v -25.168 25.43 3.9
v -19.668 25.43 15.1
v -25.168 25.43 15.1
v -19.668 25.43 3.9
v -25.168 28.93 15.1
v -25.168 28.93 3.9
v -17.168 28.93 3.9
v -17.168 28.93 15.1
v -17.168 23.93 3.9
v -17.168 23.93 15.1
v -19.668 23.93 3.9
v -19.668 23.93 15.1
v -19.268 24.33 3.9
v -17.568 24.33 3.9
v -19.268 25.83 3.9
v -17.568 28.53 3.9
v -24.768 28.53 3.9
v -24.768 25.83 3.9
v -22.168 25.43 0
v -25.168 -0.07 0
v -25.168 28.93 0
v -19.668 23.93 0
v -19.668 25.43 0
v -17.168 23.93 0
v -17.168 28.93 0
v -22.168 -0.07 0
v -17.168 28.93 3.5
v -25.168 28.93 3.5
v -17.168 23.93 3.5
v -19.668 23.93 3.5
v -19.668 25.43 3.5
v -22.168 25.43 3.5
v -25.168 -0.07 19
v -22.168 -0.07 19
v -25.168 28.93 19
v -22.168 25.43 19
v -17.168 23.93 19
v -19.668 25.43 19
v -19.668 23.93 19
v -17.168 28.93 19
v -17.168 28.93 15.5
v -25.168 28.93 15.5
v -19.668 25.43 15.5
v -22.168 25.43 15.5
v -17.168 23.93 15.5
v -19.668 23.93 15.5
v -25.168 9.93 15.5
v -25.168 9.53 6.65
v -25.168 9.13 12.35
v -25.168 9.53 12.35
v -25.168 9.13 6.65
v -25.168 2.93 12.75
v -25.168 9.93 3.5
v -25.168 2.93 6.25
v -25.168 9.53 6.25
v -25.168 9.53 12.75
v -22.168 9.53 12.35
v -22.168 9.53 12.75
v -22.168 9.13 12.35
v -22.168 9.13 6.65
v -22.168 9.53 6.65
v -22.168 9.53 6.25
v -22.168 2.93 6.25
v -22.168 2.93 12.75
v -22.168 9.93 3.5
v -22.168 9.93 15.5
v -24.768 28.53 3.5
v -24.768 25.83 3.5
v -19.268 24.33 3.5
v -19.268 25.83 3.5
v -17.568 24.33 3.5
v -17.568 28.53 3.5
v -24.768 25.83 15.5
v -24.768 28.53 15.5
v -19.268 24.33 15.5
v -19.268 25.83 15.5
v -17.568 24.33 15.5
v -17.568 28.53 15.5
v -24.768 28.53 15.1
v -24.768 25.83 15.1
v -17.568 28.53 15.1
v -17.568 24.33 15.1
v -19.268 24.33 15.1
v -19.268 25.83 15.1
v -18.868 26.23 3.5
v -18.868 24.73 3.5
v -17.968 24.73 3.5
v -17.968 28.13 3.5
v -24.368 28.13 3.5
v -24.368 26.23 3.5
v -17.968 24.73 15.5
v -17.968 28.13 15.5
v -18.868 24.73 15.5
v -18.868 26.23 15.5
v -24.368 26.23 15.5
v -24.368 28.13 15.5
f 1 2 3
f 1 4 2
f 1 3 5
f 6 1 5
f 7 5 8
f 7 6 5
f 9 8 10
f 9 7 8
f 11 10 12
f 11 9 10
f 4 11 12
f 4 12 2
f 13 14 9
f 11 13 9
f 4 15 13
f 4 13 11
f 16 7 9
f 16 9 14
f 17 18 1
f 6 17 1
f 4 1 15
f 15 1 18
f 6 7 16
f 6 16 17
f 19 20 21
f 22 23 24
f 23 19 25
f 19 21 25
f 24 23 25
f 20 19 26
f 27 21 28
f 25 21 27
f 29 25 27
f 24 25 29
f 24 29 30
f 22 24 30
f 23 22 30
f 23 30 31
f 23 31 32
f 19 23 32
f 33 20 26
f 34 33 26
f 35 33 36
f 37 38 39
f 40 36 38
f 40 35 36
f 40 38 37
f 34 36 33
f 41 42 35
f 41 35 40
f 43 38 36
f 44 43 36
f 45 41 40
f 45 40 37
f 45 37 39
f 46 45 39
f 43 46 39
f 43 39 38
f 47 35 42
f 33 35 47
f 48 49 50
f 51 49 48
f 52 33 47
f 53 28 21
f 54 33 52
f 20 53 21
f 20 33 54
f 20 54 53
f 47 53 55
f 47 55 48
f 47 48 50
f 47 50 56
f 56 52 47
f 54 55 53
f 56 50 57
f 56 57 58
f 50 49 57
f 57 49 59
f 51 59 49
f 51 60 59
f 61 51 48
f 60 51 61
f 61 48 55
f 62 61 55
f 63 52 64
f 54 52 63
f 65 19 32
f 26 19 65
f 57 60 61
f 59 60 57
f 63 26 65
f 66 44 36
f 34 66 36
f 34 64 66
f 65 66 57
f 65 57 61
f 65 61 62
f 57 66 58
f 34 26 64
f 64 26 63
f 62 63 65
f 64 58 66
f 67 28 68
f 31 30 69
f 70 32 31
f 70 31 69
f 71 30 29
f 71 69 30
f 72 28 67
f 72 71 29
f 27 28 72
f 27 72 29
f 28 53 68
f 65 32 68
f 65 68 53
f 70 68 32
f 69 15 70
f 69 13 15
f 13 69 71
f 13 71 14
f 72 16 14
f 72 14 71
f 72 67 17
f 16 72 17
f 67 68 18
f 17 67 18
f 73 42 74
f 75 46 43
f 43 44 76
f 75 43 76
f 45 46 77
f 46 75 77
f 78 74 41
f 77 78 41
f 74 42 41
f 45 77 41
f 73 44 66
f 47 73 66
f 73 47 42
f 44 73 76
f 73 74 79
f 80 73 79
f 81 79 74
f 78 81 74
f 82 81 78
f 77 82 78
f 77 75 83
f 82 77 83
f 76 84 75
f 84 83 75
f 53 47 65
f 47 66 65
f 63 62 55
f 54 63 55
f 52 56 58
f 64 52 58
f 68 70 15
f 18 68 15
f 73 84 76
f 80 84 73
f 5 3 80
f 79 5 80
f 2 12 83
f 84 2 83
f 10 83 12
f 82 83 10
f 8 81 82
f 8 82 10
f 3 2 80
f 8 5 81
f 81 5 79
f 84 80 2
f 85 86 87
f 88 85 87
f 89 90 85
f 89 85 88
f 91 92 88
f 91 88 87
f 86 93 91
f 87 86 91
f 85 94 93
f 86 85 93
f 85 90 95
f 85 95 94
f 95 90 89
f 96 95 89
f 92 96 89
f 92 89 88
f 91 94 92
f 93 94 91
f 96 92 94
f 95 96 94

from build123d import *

# Parameters (mm, degrees)
PAD_DEPTH       = 19
POCKET_DEPTH    = 8.001
PAD001_DEPTH    = 12
SKETCH003_W     = 3.5
SKETCH003_H     = 0.4
POCKET001_DEPTH = 0.4
SKETCH004_W     = 5
SKETCH004_H     = 0.4
POCKET002_DEPTH = 0.4
SKETCH005_W     = 1.9
SKETCH005_H     = 0.4
POCKET003_DEPTH = 0.4
SKETCH006_W     = 5.1
SKETCH006_H     = 0.4
POCKET004_DEPTH = 0.4
SKETCH007_W     = 1.7
SKETCH007_H     = 0.4
POCKET005_DEPTH = 0.4
SKETCH008_W     = 7.2
SKETCH008_H     = 0.4
POCKET006_DEPTH = 0.4
SKETCH009_W     = 3
SKETCH009_H     = 0.8
PAD002_DEPTH    = 7
SKETCH010_W     = 3
SKETCH010_H     = 0.4
POCKET007_DEPTH = 0.4


with BuildPart() as part:
    # Sketch → Pad (new body)
    with BuildSketch(Plane.XY):
        Polygon((-25.168114, 28.93024), (-17.168114, 28.93024), (-17.168114, 23.93024), (-19.668114, 23.93024), (-19.668114, 25.43024), (-22.168114, 25.43024), (-22.168114, -0.06976), (-25.168114, -0.06976), align=None)
    extrude(amount=PAD_DEPTH)

    # Sketch001 → Pocket (cut, through all)
    with BuildSketch(Plane(origin=(-25.168114, 0, 0), x_dir=(0, -1, 0), z_dir=(-1, 0, 0))):
        Polygon((-28.93024, 15.5), (-9.93024, 15.5), (-9.93024, 12.75), (-2.93024, 12.75), (-2.93024, 6.25), (-9.93024, 6.25), (-9.93024, 3.5), (-28.93024, 3.5), align=None)
    extrude(amount=-POCKET_DEPTH, mode=Mode.SUBTRACT)

    # Sketch002 → Pad001 (new body)
    with BuildSketch(Plane.XY.offset(3.5)):
        Polygon((-25.168114, 28.93024), (-17.168114, 28.93024), (-17.168114, 23.93024), (-19.668114, 23.93024), (-19.668114, 25.43024), (-25.168114, 25.43024), align=None)
        Polygon((-24.368114, 26.23024), (-24.368114, 28.13024), (-17.968114, 28.13024), (-17.968114, 24.73024), (-18.868114, 24.73024), (-18.868114, 26.23024), align=None, mode=Mode.SUBTRACT)
    extrude(amount=PAD001_DEPTH)

    # Sketch003 → Pocket001 (cut)
    with BuildSketch(Plane(origin=(-25.168114, 0, 0), x_dir=(0, -1, 0), z_dir=(-1, 0, 0))):
        with Locations((-27.18024, 15.3)):
            Rectangle(SKETCH003_W, SKETCH003_H)
        with Locations((-27.18024, 3.7)):
            Rectangle(SKETCH003_W, SKETCH003_H)
    extrude(amount=-POCKET001_DEPTH, mode=Mode.SUBTRACT)

    # Sketch004 → Pocket002 (cut)
    with BuildSketch(Plane.YZ.offset(-17.168114)):
        with Locations((26.43024, 15.3)):
            Rectangle(SKETCH004_W, SKETCH004_H)
        with Locations((26.43024, 3.7)):
            Rectangle(SKETCH004_W, SKETCH004_H)
    extrude(amount=-POCKET002_DEPTH, mode=Mode.SUBTRACT)

    # Sketch005 → Pocket003 (cut)
    with BuildSketch(Plane(origin=(-19.668114, 0, 0), x_dir=(0, -1, 0), z_dir=(-1, 0, 0))):
        with Locations((-24.88024, 15.3)):
            Rectangle(SKETCH005_W, SKETCH005_H)
        with Locations((-24.88024, 3.7)):
            Rectangle(SKETCH005_W, SKETCH005_H)
    extrude(amount=-POCKET003_DEPTH, mode=Mode.SUBTRACT)

    # Sketch006 → Pocket004 (cut)
    with BuildSketch(Plane.XZ.offset(-25.43024)):
        with Locations((-22.218114, 15.3)):
            Rectangle(SKETCH006_W, SKETCH006_H)
        with Locations((-22.218114, 3.7)):
            Rectangle(SKETCH006_W, SKETCH006_H)
    extrude(amount=-POCKET004_DEPTH, mode=Mode.SUBTRACT)

    # Sketch007 → Pocket005 (cut)
    with BuildSketch(Plane.XZ.offset(-23.93024)):
        with Locations((-18.418114, 15.3)):
            Rectangle(SKETCH007_W, SKETCH007_H)
        with Locations((-18.418114, 3.7)):
            Rectangle(SKETCH007_W, SKETCH007_H)
    extrude(amount=-POCKET005_DEPTH, mode=Mode.SUBTRACT)

    # Sketch008 → Pocket006 (cut)
    with BuildSketch(Plane(origin=(0, 28.93024, 0), x_dir=(-1, 0, 0), z_dir=(0, 1, 0))):
        with Locations((21.168114, 15.3)):
            Rectangle(SKETCH008_W, SKETCH008_H)
        with Locations((21.168114, 3.7)):
            Rectangle(SKETCH008_W, SKETCH008_H)
    extrude(amount=-POCKET006_DEPTH, mode=Mode.SUBTRACT)

    # Sketch009 → Pad002 (new body)
    with BuildSketch(Plane.XY.offset(6.25)):
        with Locations((-23.668114, 9.53024)):
            Rectangle(SKETCH009_W, SKETCH009_H)
    extrude(amount=PAD002_DEPTH)

    # Sketch010 → Pocket007 (cut)
    with BuildSketch(Plane.XZ.offset(-9.13024)):
        with Locations((-23.668114, 12.55)):
            Rectangle(SKETCH010_W, SKETCH010_H)
        with Locations((-23.668114, 6.45)):
            Rectangle(SKETCH010_W, SKETCH010_H)
    extrude(amount=-POCKET007_DEPTH, mode=Mode.SUBTRACT)


solid = part.part
